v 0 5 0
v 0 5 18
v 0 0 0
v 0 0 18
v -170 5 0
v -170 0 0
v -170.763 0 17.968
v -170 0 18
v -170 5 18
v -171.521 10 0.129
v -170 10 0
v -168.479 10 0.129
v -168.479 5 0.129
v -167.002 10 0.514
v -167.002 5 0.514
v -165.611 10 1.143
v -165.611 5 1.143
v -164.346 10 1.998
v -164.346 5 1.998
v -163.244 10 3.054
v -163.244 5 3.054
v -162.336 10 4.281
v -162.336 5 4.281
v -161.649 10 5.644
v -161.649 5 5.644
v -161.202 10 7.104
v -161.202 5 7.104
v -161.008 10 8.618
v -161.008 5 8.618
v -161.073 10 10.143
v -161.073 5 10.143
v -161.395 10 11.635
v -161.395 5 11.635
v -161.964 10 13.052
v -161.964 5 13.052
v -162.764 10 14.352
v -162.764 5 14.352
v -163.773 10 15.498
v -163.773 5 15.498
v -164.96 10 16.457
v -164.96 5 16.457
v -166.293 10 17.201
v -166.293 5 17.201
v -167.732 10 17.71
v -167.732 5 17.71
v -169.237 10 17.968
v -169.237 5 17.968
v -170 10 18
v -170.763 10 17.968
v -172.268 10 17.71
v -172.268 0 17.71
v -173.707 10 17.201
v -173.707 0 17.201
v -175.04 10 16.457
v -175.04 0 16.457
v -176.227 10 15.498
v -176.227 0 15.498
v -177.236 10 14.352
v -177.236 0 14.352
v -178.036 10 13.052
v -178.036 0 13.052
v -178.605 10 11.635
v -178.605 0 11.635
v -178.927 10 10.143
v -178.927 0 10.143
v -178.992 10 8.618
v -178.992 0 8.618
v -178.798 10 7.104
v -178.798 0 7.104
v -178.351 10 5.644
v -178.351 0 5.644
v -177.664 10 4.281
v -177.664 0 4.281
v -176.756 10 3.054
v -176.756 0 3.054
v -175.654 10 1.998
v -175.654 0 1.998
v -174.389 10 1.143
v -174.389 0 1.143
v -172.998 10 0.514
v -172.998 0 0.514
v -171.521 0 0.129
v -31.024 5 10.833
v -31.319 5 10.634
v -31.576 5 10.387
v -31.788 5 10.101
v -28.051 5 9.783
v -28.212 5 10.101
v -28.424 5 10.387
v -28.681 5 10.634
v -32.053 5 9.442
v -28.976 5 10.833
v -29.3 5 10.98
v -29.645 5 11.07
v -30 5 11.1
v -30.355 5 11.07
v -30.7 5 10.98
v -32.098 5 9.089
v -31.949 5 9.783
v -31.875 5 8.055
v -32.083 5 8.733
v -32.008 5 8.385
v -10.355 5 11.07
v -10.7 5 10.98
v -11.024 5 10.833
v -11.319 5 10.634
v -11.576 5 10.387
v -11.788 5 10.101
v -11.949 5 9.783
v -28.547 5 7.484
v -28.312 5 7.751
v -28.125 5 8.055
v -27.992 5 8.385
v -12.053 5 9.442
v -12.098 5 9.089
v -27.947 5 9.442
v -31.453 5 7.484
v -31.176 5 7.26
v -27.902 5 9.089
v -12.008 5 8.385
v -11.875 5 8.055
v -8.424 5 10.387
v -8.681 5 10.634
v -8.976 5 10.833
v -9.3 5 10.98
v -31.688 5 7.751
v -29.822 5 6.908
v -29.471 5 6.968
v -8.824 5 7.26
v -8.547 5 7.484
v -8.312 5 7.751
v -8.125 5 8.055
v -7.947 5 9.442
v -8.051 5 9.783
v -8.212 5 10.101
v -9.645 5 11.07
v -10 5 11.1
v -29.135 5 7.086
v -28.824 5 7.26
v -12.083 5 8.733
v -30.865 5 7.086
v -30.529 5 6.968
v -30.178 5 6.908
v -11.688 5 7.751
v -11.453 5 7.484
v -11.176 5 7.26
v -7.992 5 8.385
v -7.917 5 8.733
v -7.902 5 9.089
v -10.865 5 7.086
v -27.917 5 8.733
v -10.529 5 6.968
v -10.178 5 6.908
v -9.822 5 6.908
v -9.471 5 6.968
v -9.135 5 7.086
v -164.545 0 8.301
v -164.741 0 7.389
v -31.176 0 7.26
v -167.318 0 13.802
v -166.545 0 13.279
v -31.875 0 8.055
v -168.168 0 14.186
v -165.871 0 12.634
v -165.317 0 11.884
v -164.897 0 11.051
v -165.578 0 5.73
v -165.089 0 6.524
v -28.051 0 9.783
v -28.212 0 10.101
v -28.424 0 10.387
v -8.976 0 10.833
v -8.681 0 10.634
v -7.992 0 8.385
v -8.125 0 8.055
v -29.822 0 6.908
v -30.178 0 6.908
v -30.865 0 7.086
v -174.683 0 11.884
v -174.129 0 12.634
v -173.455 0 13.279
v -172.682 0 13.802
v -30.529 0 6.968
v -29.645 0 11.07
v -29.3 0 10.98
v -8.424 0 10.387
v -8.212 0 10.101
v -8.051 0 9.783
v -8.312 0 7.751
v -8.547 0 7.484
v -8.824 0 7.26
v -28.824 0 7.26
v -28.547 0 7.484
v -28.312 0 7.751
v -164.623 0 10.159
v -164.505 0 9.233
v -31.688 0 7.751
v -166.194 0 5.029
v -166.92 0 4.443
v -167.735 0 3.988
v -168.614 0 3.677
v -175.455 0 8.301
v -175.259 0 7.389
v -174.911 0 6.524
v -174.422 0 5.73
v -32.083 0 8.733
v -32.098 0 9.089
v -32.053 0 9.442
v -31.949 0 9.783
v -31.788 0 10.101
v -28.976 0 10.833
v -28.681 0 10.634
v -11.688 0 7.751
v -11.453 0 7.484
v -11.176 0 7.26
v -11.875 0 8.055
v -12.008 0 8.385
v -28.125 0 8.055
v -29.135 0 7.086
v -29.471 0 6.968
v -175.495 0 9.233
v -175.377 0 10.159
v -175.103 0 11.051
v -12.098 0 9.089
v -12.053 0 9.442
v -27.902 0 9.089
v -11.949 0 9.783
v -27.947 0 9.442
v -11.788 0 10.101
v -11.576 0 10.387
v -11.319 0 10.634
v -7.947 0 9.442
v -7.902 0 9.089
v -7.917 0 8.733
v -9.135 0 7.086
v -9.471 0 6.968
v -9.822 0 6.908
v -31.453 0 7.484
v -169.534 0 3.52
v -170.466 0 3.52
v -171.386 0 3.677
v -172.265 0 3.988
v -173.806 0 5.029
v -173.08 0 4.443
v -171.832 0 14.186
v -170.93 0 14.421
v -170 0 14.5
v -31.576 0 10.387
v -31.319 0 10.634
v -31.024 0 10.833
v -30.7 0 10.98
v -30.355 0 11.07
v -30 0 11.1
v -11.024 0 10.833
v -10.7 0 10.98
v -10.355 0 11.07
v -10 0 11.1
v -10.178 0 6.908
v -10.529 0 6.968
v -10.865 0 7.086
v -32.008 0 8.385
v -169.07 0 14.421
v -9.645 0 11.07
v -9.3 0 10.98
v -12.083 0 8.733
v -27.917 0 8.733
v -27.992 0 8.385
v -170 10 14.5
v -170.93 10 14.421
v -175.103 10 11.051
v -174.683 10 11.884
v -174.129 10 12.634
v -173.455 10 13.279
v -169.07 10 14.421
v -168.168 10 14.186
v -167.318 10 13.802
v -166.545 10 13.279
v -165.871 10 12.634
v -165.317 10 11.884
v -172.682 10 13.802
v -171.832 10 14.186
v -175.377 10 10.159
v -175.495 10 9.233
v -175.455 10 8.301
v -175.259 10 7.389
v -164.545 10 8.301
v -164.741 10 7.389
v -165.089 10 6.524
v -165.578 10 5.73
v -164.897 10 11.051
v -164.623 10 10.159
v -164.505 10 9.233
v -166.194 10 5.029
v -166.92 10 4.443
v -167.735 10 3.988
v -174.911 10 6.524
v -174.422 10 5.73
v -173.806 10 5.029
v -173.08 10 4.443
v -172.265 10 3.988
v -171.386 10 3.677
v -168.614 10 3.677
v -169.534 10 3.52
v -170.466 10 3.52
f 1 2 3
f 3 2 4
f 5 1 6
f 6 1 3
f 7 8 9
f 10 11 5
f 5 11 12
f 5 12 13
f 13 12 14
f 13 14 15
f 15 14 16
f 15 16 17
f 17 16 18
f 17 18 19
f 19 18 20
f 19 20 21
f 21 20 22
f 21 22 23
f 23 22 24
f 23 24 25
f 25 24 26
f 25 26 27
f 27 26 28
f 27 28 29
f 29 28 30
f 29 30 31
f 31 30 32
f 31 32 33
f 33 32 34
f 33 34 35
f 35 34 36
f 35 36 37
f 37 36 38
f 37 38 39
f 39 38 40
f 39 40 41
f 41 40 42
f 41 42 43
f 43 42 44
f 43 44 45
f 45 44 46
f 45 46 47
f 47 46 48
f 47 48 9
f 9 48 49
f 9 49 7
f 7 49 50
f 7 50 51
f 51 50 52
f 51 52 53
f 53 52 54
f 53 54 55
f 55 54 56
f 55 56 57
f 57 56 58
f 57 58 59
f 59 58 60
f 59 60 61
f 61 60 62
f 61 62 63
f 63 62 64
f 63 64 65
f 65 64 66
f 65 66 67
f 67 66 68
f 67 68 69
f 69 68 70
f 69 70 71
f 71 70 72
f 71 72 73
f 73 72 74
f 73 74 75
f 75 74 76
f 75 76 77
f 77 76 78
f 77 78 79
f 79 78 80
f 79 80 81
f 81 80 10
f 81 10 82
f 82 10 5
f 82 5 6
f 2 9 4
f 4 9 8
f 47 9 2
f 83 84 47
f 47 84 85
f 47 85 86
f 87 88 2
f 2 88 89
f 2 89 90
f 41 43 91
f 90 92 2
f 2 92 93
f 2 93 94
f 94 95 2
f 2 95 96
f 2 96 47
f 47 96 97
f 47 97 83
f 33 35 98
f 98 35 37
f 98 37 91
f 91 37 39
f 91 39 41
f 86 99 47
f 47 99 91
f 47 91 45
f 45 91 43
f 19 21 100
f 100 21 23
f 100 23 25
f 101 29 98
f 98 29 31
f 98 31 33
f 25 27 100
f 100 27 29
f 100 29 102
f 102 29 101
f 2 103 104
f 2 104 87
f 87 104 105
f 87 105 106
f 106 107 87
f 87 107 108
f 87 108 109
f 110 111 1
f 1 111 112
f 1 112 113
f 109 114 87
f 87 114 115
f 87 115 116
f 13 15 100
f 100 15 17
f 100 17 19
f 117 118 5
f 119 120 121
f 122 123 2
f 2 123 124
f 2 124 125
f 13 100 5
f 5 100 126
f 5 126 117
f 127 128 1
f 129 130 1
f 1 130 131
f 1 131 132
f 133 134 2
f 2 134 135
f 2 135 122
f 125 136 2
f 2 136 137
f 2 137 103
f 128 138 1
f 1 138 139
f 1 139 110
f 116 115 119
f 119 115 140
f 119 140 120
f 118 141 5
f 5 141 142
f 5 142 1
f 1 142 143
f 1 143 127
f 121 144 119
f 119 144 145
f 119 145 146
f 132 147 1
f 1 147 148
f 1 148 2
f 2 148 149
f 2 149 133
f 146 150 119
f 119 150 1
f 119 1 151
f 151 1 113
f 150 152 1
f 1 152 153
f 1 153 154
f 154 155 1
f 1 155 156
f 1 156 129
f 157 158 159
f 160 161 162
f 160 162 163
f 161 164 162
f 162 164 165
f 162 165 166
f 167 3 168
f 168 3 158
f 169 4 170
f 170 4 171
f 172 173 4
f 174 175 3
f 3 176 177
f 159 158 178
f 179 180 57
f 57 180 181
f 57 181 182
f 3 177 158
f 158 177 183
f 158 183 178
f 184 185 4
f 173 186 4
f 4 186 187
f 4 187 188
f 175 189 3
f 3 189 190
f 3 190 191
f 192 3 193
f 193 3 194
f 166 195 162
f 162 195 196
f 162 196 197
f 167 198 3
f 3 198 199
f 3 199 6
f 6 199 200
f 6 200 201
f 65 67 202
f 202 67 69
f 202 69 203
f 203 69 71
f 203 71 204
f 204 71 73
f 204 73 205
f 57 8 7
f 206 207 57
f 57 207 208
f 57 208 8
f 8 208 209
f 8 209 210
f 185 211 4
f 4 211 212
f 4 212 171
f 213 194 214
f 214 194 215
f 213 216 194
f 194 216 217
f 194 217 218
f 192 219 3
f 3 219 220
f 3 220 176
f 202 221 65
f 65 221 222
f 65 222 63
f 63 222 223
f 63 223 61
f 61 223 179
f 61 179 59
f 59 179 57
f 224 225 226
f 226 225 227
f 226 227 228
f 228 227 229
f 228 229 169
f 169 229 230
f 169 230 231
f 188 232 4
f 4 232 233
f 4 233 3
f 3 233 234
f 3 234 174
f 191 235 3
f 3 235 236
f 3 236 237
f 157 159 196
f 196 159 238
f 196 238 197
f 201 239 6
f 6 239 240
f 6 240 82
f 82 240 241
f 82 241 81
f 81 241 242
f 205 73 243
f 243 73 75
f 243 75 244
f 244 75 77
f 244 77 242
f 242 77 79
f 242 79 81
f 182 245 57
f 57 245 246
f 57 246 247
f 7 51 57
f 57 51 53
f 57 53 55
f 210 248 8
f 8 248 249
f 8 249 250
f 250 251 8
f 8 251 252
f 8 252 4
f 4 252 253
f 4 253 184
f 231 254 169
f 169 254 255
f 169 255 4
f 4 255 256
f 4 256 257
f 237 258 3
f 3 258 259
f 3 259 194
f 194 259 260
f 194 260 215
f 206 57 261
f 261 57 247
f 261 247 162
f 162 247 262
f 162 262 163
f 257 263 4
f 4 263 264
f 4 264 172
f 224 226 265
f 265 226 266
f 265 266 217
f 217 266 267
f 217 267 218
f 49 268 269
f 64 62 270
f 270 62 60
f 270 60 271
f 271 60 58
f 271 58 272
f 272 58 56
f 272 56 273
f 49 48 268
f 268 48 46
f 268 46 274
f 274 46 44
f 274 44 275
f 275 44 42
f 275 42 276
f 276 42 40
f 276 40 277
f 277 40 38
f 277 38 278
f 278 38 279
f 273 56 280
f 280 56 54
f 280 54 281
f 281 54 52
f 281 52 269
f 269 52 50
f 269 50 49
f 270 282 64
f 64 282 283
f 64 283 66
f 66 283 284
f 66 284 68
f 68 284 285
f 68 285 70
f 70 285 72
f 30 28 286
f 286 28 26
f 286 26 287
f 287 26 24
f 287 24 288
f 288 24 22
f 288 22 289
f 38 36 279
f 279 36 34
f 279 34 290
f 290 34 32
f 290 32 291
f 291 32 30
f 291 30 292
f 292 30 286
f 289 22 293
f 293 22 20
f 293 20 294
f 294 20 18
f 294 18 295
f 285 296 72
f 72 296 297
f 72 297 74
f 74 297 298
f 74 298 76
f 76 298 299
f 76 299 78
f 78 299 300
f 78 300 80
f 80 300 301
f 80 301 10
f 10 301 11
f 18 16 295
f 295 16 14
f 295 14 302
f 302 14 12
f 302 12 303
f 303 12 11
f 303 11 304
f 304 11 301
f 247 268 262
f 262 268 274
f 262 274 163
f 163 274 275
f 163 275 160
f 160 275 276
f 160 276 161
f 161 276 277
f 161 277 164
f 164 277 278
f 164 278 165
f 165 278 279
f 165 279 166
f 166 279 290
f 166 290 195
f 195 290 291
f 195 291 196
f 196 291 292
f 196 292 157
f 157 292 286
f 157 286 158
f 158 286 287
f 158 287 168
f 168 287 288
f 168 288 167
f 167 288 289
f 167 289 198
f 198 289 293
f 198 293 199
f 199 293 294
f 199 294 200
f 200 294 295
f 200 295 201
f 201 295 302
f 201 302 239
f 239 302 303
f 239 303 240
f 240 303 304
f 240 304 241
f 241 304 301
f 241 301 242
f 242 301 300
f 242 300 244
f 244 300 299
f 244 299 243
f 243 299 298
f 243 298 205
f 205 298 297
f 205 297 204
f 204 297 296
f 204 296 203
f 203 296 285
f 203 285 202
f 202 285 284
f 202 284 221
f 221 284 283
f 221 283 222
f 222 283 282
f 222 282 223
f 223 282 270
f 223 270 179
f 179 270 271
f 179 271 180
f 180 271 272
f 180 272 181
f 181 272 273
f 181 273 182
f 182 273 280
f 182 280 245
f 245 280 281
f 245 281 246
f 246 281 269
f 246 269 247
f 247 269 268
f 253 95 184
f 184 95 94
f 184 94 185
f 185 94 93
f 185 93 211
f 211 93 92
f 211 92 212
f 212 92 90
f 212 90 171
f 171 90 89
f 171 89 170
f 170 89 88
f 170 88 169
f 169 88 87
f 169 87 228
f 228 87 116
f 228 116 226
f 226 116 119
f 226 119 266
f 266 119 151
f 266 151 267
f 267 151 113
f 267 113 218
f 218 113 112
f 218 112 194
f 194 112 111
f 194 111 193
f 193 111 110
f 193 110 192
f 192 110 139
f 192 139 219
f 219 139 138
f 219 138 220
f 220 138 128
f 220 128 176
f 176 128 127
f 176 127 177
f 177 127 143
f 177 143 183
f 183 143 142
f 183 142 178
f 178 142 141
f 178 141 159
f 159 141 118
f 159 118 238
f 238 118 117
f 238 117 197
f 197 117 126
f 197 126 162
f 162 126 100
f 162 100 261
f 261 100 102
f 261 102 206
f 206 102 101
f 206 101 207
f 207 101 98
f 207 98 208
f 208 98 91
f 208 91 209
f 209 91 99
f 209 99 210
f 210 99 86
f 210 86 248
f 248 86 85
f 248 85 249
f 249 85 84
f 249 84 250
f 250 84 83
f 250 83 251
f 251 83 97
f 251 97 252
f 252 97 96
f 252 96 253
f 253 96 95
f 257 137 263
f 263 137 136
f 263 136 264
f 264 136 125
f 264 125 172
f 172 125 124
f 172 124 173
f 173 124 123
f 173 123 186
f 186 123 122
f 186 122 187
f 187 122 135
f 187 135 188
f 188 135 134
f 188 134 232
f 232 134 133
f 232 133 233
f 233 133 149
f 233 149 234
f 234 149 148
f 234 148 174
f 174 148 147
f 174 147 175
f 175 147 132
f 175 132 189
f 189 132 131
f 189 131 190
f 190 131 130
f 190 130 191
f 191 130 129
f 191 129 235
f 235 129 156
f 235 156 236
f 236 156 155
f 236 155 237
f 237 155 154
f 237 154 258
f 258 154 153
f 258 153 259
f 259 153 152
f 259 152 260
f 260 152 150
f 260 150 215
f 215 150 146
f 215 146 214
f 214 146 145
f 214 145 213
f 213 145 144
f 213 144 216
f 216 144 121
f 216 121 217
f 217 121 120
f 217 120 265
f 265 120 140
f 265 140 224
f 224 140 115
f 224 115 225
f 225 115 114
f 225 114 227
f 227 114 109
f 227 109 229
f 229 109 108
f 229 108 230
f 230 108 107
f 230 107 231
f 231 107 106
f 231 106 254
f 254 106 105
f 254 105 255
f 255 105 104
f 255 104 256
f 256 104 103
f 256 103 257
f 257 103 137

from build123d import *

# Parameters (mm, degrees)
BOSS_EXTRUDE1_DEPTH = 5
SKETCH2_R           = 9
BOSS_EXTRUDE2_DEPTH = 5
SKETCH3_R           = 5.5
CUT_EXTRUDE1_DEPTH  = 181.18046509
SKETCH4_R           = 2.1
CUT_EXTRUDE2_DEPTH  = 180.972220079


with BuildPart() as part:
    # Sketch1 → Boss-Extrude1 (new body)
    with BuildSketch(Plane(origin=(0, 0, 0), x_dir=(1, 0, 0), z_dir=(0, 1, 0))):
        with BuildLine():
            Line((0, 0), (-170, 0))
            ThreePointArc((-170, 0), (-179, -9), (-170, -18))
            Line((-170, -18), (0, -18))
            Line((0, -18), (0, 0))
        make_face()
    extrude(amount=BOSS_EXTRUDE1_DEPTH)

    # Sketch2 → Boss-Extrude2 (add)
    with BuildSketch(Plane(origin=(0, 5, 0), x_dir=(1, 0, 0), z_dir=(0, 1, 0))):
        with Locations(Location((-170, -9, 0), (0, 0, 270))):
            Circle(SKETCH2_R)
    extrude(amount=BOSS_EXTRUDE2_DEPTH)

    # Sketch3 → Cut-Extrude1 (cut, through all)
    with BuildSketch(Plane(origin=(0, 10, 0), x_dir=(1, 0, 0), z_dir=(0, 1, 0))):
        with Locations(Location((-170, -9, 0), (0, 0, 270))):
            Circle(SKETCH3_R)
    extrude(amount=-CUT_EXTRUDE1_DEPTH, mode=Mode.SUBTRACT)

    # Sketch4 → Cut-Extrude2 (cut, through all)
    with BuildSketch(Plane(origin=(0, 5, 0), x_dir=(1, 0, 0), z_dir=(0, 1, 0))):
        with Locations(Location((-10, -9, 0), (0, 0, 270))):
            Circle(SKETCH4_R)
        with Locations(Location((-30, -9, 0), (0, 0, 270))):
            Circle(SKETCH4_R)
    extrude(amount=-CUT_EXTRUDE2_DEPTH, mode=Mode.SUBTRACT)


solid = part.part
